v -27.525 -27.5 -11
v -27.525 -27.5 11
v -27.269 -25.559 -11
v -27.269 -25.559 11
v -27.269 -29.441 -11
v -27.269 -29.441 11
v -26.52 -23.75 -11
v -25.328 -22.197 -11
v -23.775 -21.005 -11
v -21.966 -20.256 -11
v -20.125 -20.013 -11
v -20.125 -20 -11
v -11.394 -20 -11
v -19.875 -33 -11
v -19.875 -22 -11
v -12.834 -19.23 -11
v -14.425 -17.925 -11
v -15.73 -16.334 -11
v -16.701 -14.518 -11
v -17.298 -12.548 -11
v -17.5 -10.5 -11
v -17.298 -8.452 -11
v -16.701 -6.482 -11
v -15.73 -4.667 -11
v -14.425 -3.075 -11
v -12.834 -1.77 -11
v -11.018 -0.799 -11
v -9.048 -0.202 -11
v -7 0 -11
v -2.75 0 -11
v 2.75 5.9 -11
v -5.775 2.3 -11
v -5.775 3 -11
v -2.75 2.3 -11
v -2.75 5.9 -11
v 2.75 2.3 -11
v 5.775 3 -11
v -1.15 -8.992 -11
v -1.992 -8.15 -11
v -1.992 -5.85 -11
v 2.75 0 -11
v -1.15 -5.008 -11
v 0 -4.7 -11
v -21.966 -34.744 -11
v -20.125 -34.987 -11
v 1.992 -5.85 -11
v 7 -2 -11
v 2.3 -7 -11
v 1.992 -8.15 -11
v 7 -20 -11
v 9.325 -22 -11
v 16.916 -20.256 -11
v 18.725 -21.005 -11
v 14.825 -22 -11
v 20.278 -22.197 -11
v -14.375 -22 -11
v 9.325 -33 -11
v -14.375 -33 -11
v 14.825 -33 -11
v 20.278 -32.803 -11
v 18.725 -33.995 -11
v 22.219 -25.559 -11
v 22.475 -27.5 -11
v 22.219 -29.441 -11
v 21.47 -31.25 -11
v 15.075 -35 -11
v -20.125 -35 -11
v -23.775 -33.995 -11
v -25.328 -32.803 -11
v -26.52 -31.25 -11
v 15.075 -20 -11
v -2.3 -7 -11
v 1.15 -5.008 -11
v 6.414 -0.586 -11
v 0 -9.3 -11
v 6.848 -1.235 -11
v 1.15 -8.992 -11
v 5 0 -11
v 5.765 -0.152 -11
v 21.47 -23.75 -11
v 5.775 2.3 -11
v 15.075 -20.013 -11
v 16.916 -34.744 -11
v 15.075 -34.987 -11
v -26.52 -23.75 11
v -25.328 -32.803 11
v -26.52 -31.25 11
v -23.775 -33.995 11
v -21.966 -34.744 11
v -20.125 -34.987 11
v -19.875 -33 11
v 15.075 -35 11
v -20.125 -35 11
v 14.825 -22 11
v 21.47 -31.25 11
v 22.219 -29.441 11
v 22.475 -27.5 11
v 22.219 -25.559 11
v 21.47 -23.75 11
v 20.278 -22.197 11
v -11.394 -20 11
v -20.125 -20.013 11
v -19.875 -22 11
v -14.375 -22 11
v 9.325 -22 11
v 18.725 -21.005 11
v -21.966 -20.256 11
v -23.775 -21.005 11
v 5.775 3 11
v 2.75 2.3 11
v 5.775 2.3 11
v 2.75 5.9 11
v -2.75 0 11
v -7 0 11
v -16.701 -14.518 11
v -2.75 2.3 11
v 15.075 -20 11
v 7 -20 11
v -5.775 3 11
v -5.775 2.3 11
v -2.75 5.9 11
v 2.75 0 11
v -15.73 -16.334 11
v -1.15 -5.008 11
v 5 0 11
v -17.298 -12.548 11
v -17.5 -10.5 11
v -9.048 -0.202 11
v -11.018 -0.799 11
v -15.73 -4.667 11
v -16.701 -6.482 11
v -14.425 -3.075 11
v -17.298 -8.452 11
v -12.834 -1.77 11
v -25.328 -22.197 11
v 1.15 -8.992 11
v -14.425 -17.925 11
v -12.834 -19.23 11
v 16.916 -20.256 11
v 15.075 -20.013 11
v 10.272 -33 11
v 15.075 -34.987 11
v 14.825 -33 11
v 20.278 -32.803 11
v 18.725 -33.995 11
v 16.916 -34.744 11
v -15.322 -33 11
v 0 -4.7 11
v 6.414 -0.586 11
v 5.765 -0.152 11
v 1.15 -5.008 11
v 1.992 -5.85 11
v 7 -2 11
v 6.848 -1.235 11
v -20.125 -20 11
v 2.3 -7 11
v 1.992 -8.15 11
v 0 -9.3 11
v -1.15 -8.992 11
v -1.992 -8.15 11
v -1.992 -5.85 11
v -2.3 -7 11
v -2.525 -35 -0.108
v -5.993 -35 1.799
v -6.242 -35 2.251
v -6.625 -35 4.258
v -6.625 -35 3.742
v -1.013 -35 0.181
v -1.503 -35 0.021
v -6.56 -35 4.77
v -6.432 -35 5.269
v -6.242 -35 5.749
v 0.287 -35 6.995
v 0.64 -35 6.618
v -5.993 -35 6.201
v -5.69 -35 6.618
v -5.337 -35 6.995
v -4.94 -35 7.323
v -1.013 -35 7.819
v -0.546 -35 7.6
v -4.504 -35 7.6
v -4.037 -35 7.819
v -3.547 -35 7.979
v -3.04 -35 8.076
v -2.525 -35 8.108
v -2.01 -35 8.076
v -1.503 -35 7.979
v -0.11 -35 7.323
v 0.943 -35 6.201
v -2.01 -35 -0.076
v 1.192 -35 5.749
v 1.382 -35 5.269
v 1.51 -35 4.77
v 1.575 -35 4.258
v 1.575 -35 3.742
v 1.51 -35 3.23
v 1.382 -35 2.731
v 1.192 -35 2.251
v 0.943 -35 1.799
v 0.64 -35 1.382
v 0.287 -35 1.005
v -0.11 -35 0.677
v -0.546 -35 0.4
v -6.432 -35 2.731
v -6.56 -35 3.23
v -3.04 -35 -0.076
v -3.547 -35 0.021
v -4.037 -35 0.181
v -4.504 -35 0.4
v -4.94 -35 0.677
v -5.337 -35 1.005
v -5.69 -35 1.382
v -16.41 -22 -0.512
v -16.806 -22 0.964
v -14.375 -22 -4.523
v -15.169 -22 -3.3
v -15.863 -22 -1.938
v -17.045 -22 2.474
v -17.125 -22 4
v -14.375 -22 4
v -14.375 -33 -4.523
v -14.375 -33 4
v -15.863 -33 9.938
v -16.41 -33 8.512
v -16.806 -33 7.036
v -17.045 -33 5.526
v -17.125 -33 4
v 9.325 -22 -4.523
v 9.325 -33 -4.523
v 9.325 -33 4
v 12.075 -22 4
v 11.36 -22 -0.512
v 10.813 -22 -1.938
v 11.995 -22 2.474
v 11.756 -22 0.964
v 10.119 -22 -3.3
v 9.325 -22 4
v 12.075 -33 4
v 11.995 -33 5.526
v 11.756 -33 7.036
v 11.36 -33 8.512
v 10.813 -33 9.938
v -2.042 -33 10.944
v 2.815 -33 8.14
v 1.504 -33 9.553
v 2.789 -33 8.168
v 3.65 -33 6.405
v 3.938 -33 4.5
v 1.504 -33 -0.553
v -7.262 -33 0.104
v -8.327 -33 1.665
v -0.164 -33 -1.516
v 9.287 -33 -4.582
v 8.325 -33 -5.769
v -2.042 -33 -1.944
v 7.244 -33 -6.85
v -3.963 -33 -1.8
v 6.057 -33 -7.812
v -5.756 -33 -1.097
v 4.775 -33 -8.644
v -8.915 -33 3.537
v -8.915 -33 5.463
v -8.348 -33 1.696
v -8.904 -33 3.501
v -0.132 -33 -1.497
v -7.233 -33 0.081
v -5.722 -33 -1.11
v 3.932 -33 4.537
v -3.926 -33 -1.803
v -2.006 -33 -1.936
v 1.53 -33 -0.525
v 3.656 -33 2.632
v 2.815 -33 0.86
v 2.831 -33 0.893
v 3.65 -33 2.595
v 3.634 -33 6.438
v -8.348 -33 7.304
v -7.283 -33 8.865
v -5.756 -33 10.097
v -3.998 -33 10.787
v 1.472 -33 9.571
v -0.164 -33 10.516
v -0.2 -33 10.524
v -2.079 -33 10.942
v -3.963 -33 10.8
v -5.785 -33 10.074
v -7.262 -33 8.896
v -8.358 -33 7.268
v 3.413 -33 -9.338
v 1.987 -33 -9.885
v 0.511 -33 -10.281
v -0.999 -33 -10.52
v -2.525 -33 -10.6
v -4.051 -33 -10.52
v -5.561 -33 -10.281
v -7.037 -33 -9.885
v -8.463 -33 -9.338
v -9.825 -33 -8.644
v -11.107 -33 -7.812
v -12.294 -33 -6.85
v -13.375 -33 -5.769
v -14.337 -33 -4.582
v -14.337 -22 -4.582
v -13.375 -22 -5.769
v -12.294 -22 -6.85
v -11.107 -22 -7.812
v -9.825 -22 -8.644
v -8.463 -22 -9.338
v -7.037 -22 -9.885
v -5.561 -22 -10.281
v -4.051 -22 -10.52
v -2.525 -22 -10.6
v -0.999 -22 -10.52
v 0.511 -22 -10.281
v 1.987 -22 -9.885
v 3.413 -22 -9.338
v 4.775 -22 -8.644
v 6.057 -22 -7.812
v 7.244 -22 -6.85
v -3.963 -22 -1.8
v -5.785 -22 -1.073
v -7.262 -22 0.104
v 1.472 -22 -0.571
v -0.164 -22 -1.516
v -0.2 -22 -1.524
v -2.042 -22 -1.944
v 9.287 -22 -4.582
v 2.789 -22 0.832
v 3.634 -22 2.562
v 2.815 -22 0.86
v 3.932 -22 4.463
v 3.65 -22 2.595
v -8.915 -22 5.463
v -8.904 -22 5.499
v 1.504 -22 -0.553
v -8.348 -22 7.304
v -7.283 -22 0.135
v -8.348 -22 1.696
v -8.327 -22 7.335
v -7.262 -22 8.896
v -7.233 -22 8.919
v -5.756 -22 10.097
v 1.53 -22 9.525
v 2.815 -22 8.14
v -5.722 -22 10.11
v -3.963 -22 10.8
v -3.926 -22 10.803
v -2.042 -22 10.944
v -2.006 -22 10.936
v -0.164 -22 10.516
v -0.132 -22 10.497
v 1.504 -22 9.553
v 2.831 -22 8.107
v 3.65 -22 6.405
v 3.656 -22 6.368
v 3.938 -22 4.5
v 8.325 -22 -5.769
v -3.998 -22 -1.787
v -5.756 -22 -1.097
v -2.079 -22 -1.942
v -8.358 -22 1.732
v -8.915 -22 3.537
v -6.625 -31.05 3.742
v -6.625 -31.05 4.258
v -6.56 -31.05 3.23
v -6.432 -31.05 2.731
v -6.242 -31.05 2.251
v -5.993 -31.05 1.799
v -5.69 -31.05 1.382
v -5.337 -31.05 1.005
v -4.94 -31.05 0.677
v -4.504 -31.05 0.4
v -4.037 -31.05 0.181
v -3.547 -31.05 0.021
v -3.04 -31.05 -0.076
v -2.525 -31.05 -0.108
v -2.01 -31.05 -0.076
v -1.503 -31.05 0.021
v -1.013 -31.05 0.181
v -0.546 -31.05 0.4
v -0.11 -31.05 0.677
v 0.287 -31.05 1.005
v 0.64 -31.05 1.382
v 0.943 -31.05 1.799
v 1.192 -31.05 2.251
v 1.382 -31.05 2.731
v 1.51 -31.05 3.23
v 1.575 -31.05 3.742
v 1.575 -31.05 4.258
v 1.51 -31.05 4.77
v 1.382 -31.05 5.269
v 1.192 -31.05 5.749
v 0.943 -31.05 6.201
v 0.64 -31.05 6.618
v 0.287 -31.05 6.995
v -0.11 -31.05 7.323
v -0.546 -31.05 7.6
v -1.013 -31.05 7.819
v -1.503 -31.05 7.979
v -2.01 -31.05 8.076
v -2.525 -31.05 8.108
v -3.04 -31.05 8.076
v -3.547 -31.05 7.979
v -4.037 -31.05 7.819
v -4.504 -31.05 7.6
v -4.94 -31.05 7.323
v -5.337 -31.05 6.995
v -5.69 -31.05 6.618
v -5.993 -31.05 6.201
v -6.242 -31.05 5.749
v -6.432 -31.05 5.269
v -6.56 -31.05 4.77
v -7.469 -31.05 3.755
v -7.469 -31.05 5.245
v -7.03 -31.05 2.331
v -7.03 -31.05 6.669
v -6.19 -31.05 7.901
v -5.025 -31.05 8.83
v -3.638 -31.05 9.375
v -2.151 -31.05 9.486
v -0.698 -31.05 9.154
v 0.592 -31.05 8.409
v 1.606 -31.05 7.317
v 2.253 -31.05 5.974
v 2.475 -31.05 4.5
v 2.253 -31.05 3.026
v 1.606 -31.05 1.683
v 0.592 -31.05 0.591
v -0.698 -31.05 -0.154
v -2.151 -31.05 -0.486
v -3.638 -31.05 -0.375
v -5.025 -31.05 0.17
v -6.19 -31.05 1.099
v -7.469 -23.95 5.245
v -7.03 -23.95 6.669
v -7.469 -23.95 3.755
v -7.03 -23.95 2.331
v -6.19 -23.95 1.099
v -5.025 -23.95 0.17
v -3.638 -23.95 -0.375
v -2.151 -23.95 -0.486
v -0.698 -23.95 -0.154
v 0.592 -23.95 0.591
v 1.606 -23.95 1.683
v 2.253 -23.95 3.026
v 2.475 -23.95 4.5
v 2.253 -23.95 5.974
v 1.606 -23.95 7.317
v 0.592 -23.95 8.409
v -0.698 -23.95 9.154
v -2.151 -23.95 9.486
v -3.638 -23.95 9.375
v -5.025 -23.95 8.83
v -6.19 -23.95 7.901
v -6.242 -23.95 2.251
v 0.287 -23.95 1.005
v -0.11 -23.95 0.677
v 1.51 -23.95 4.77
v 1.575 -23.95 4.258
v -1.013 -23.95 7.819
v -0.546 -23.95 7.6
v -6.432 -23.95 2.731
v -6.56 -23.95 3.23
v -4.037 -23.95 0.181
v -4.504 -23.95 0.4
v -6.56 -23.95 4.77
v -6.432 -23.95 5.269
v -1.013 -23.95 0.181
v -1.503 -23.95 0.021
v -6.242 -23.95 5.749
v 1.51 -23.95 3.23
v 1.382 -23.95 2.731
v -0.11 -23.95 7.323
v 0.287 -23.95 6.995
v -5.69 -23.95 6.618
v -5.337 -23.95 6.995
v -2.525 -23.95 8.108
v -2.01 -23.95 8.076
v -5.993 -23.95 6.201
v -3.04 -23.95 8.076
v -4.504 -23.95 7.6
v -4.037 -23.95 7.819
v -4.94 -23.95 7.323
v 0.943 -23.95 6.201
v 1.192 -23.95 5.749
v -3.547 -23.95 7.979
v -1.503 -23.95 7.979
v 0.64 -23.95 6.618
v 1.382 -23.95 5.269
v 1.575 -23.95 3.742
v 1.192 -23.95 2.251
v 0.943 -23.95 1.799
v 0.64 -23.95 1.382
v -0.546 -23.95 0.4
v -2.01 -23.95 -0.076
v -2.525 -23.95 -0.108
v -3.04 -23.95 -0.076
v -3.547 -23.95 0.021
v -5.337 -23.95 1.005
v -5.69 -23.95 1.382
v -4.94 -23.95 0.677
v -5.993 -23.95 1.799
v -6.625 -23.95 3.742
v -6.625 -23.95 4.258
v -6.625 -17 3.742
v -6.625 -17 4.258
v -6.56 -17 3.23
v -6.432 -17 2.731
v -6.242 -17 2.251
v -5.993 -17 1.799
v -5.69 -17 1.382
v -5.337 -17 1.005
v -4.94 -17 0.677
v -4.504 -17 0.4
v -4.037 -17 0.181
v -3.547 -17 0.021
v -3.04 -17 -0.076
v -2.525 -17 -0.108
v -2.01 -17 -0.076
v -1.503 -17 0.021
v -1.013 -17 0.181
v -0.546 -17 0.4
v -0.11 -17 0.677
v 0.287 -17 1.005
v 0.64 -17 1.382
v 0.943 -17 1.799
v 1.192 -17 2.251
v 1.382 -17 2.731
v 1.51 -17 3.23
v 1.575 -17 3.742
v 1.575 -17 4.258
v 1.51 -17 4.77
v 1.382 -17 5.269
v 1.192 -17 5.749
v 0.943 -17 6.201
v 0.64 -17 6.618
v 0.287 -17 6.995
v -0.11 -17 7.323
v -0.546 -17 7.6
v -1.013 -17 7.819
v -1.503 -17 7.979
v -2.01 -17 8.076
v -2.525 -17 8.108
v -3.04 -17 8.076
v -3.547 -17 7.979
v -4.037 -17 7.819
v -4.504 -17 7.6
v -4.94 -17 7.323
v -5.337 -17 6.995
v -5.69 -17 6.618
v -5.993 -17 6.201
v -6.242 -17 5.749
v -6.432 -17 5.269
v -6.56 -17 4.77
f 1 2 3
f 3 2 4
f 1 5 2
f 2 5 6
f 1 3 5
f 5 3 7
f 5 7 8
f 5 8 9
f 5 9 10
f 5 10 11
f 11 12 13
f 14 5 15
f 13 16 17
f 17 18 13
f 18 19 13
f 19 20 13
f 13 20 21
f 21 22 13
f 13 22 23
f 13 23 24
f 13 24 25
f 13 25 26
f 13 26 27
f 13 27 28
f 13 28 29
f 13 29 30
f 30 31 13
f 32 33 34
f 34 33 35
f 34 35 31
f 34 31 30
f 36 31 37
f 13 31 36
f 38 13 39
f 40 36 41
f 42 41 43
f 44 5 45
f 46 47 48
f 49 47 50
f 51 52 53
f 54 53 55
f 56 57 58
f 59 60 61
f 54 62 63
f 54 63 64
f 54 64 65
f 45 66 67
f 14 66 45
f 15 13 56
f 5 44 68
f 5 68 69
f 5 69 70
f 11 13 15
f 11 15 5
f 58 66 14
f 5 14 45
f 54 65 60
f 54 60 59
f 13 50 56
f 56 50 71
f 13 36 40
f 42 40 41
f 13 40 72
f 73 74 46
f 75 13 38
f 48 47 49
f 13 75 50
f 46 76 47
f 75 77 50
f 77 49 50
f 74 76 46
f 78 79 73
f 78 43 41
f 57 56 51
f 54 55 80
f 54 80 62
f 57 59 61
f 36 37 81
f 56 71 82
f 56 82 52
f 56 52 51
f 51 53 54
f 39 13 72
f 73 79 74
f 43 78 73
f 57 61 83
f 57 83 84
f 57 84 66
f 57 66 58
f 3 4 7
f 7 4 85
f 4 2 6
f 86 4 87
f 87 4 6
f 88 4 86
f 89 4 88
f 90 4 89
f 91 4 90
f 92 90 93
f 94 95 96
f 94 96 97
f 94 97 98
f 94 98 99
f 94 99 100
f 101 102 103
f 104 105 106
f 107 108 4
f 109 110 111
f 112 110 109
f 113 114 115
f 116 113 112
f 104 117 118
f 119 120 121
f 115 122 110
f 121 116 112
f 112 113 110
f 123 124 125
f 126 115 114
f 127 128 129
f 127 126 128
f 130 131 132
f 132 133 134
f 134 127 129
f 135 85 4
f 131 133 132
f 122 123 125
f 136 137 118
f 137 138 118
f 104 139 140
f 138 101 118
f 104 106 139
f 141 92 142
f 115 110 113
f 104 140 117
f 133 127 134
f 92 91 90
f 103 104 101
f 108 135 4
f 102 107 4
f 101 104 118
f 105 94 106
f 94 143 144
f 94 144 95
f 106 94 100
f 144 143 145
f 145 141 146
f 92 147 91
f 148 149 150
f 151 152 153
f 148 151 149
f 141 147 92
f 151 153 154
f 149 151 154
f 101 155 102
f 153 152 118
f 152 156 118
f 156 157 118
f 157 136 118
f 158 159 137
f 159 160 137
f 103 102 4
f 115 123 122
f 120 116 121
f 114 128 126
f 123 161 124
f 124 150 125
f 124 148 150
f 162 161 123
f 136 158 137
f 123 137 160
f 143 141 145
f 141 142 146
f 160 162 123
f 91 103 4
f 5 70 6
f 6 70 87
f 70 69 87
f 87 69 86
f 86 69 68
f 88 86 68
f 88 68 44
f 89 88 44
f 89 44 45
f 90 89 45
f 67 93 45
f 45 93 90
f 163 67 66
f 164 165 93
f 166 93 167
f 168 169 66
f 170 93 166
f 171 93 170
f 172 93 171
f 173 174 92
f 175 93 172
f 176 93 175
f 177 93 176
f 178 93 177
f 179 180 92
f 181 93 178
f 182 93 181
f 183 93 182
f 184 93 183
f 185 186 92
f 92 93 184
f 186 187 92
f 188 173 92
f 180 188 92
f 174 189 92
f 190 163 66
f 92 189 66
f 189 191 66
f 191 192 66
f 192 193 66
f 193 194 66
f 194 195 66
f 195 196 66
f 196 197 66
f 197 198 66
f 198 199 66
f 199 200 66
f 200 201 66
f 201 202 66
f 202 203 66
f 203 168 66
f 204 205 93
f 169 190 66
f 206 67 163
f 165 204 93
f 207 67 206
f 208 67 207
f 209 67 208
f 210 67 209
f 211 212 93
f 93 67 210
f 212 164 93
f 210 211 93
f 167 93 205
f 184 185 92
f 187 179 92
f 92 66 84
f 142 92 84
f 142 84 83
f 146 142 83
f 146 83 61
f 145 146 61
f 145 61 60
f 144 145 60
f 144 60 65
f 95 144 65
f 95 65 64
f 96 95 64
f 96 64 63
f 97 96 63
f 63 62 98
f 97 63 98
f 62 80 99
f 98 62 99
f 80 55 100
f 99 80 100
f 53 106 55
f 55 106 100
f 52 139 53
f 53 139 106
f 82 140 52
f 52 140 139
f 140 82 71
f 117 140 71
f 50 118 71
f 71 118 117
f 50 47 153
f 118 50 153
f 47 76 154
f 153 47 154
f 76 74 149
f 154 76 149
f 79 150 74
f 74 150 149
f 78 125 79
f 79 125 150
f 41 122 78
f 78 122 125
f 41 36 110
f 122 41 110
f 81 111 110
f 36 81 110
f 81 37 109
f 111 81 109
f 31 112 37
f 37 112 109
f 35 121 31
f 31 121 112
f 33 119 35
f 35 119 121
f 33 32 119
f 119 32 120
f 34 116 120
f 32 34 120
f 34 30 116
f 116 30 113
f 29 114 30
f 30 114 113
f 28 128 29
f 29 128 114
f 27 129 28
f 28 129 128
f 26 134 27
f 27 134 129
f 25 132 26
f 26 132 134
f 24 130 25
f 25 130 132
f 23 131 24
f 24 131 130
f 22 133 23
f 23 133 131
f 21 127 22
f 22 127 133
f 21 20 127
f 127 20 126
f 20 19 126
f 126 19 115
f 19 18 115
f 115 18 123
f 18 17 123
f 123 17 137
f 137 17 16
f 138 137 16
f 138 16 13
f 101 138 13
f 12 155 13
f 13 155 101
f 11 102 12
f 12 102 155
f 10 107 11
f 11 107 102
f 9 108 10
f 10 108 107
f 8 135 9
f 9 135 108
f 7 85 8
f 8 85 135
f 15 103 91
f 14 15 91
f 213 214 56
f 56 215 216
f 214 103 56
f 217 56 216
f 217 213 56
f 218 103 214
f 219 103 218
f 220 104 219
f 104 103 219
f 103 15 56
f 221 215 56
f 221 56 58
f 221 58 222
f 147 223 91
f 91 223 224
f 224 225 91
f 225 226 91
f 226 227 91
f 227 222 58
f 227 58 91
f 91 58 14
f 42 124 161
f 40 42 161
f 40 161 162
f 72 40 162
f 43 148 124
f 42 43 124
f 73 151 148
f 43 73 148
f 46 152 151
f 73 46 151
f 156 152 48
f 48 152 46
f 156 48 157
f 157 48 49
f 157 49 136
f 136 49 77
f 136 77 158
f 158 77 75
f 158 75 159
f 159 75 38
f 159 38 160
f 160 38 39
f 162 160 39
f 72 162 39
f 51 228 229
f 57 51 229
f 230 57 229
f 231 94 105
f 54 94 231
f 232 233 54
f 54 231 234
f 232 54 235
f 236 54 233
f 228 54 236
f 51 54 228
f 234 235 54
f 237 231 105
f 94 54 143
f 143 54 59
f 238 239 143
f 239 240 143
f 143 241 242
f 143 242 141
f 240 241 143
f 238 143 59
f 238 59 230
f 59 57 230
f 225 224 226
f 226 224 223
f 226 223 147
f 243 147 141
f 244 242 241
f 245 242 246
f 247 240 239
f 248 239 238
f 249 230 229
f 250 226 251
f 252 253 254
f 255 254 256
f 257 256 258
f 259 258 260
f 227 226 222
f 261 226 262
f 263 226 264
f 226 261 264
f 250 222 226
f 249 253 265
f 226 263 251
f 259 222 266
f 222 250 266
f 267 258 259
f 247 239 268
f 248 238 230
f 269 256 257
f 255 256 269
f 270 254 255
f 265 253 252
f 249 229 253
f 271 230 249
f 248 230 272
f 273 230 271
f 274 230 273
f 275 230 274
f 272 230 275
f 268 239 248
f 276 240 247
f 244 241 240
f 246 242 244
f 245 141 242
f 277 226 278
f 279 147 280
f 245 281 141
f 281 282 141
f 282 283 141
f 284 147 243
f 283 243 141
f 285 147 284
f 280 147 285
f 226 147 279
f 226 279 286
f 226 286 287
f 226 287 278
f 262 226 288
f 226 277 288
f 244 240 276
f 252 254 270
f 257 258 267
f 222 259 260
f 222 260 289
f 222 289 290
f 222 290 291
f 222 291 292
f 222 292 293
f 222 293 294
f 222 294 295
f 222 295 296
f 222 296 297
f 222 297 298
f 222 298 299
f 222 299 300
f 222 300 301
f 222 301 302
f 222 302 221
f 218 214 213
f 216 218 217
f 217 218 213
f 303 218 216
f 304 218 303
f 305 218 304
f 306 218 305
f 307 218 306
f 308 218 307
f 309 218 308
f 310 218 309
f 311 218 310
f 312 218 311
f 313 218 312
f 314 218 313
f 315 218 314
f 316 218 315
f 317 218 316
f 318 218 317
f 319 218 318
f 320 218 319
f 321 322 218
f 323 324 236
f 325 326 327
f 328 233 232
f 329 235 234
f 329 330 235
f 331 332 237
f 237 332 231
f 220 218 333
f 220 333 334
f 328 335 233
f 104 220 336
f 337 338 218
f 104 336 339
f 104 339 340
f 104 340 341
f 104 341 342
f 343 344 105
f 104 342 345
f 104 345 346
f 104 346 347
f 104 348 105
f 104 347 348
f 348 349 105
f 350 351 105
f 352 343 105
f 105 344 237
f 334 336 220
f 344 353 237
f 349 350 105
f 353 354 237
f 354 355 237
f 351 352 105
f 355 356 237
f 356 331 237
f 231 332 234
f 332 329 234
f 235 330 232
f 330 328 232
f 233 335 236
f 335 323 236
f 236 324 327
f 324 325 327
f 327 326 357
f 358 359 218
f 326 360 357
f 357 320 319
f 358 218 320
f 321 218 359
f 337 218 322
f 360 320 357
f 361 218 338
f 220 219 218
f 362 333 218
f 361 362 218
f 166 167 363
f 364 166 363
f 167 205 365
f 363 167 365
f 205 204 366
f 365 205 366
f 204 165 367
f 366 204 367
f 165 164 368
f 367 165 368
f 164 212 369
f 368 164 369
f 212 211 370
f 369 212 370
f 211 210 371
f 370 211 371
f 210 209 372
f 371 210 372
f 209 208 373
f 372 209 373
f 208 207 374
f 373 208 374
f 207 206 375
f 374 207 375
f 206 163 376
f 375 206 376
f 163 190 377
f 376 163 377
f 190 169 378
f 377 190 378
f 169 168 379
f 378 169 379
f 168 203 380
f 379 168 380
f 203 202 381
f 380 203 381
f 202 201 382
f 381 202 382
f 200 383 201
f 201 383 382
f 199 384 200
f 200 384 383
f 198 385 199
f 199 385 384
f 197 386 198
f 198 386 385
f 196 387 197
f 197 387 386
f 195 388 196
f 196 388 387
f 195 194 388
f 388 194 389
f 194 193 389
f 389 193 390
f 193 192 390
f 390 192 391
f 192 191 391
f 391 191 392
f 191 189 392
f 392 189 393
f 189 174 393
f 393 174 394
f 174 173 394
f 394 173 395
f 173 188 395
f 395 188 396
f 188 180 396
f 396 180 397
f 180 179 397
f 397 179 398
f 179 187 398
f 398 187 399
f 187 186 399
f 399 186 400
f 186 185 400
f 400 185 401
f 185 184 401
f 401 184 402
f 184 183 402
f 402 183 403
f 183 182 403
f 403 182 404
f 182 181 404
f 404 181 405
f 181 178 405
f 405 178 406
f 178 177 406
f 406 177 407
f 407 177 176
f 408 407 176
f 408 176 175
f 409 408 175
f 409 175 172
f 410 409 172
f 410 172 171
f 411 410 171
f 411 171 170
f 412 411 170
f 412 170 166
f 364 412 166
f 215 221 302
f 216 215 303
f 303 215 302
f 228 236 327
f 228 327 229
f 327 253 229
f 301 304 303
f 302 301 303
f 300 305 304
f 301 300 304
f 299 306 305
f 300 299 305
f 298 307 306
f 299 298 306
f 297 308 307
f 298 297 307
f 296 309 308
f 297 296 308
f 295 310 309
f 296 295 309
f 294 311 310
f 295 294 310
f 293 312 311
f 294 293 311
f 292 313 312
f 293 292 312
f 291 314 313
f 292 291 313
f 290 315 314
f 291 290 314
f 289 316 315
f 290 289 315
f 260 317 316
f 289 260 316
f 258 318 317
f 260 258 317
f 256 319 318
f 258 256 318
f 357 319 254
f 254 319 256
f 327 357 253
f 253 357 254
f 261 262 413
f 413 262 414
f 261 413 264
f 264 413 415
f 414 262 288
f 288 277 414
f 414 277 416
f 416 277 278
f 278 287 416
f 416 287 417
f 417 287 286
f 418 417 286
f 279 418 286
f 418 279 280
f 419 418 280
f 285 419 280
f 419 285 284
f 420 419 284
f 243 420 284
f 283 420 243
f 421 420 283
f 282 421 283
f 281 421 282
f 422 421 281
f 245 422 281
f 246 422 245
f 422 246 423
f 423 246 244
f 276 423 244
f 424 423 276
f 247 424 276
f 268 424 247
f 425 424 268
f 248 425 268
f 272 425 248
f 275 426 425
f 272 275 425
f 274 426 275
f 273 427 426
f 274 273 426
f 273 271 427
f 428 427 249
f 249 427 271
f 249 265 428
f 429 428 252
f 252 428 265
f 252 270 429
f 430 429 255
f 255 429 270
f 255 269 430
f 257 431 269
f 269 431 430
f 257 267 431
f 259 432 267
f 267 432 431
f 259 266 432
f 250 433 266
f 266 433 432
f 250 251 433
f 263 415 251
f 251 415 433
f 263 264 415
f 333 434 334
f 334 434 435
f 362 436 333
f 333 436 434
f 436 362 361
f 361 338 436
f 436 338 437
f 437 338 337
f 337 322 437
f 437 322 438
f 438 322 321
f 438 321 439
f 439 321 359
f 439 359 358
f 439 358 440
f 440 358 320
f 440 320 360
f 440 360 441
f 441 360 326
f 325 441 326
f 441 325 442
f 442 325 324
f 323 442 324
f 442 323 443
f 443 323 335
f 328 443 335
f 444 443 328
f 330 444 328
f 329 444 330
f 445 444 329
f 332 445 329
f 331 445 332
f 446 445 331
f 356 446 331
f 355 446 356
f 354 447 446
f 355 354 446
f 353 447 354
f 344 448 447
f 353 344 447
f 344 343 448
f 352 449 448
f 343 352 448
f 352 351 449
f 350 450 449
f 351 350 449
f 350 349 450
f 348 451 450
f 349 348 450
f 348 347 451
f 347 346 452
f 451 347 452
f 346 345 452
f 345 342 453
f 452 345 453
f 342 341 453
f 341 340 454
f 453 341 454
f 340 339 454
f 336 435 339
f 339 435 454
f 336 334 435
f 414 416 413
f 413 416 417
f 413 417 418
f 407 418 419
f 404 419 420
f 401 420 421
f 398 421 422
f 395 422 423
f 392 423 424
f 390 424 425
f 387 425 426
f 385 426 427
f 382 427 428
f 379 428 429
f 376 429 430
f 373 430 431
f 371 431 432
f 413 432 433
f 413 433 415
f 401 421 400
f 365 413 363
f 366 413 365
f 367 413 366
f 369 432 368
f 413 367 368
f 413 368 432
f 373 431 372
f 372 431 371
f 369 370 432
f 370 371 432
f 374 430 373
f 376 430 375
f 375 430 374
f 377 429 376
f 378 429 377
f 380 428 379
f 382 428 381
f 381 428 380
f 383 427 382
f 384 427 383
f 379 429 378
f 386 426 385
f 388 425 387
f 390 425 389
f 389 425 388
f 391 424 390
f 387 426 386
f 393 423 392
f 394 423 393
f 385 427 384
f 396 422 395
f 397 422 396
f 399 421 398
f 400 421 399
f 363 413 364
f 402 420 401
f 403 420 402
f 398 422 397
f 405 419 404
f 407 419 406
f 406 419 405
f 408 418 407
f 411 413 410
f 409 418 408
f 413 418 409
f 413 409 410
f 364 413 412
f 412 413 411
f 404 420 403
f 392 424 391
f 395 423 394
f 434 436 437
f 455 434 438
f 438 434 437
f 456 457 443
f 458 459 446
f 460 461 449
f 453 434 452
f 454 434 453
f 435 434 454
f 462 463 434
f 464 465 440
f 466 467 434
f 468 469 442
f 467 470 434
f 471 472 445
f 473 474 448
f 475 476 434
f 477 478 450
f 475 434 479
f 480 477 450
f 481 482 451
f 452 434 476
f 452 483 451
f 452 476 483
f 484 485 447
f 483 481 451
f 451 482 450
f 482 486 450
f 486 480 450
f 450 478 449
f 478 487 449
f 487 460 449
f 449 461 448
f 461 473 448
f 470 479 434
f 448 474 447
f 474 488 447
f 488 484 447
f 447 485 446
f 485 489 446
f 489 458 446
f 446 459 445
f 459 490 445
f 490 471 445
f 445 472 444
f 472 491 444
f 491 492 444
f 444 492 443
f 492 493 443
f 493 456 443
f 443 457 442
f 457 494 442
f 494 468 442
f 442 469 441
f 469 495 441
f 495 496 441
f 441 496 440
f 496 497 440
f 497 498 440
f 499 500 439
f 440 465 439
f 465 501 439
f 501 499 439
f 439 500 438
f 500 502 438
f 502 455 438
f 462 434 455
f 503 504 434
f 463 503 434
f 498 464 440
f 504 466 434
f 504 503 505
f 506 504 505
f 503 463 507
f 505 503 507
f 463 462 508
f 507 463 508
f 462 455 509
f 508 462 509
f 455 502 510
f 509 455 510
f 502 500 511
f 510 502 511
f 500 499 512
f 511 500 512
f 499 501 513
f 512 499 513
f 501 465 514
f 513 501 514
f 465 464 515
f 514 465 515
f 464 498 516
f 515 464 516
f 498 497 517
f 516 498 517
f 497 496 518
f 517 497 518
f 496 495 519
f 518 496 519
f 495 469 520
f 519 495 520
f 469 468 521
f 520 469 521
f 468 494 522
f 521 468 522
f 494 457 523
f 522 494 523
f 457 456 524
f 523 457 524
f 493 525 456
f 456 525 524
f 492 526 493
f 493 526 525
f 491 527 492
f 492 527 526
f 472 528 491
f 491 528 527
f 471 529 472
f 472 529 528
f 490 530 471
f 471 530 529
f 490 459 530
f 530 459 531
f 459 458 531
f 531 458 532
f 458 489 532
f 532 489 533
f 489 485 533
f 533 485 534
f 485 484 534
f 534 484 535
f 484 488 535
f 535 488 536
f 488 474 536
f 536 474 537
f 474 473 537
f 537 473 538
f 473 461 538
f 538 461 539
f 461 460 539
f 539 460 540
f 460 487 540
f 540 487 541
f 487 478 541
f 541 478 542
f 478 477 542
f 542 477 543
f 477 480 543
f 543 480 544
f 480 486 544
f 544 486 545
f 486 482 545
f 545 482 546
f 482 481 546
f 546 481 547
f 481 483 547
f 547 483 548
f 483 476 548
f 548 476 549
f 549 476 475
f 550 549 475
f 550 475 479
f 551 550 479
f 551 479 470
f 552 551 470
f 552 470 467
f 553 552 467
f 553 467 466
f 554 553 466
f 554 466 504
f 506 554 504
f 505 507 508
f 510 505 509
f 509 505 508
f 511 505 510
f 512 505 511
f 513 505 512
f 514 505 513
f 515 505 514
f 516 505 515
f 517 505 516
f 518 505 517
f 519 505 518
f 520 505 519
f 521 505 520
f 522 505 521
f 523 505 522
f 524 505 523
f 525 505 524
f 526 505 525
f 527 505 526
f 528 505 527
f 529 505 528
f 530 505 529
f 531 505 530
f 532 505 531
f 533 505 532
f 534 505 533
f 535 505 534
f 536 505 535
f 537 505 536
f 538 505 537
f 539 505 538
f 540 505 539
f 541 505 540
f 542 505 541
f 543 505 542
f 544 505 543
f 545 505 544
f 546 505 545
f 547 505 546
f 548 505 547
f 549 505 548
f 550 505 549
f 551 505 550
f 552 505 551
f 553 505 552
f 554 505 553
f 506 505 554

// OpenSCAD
// file: misumi-parts-library.scad
module hfs2040(l) {
	// hfs5_2040
	color("silver") {
		rotate([-90,0,0]) translate([0,0,l]) scale([1,1,l/500]) import("misumi/hfs5_2040_500.stl");
	}
}

module hfs60() {
	translate([0,0,100]) import("misumi/hfs60a5_20_100.stl");
}

module hblss5() {
	import("misumi/hblss5.stl");
}
module hblfsnf5() {
	import("misumi/hblfsnf5.stl");
}
module hblfsn5() {
	import("misumi/hblfsn5.stl");
}
module hblsd5() {
	color("blue") import("misumi/hblsd5.stl");
}

module hblfsd5() {
	color("blue") import("misumi/hblfsd5.stl");
}

module hblts5() {
	color("blue") import("misumi/hblts5.stl");
}

module hblfssw5() {
	color("blue") import("misumi/hblfssw5.stl");
}

module flatbracket2x2() {
	// HPTSd5
	difference() {
		color("blue") cube([36, 36, 2.3], center=true);
		#translate([10, 10, -2]) cylinder(r= 5.5/2, h= 4);
		#translate([-10, 10, -2]) cylinder(r= 5.5/2, h= 4);
		#translate([10, -10, -2]) cylinder(r= 5.5/2, h= 4);
		#translate([-10, -10, -2]) cylinder(r= 5.5/2, h= 4);
	}
}

module tbracket() {
	// HPTTD5
	translate([-110/2, 0,0]) difference() {
		 union() {
			color("blue"){ 
				cube([110, 38, 2.3]);
				translate([110/2-38/2,-38,0]) cube([38, 80-38, 2.3]);
			}
		}
		#translate([9, 9, 0]) cylinder(r= 5.5/2, h= 4);
		#translate([9, 9+20, 0]) cylinder(r= 5.5/2, h= 4);
		#translate([110-9, 9, 0]) cylinder(r= 5.5/2, h= 4);
		#translate([110-9, 9+20, 0]) cylinder(r= 5.5/2, h= 4);
		translate([110/2-38/2,-38,0]) {
			#translate([9, 9, 0]) cylinder(r= 5.5/2, h= 4);
			#translate([9, 9+20, 0]) cylinder(r= 5.5/2, h= 4);
			#translate([38-9, 9, 0]) cylinder(r= 5.5/2, h= 4);
			#translate([38-9, 9+20, 0]) cylinder(r= 5.5/2, h= 4);
		}
	}
}

module tbracket1() {
	// HPTTS5
	//thick= 2.3; // real
	thick= 4; // printable
	translate([-100/2, 0,0]) difference() {
		 union() {
			color("blue"){ 
				cube([100, 18, thick]);
				translate([100/2-18/2,18,0]) cube([18, 90-18, thick]);
			}
		}
		#translate([10, 9, -2]) cylinder(r= 5.5/2, h= thick+4);
		#translate([100-10, 9, -2]) cylinder(r= 5.5/2, h= thick+4);
		#translate([50, 9, -2]) cylinder(r= 5.5/2, h= thick+4);
		translate([100/2-18/2,18,0]) {
			#translate([9, 90-18-10, -2]) cylinder(r= 5.5/2, h= thick+4);
			#translate([9, 90-18-10-30, -2]) cylinder(r= 5.5/2, h= thick+4);
		}
	}
}
// file: myLibs.scad
pi= 3.14159265359;

module hole(diam, height, clearance= 0.1)
{
        fn= round(diam * pi / 0.5);
        cylinder(h= height, r=diam / 2 / cos(180 / fn) + clearance, $fn=fn);
}

module nutTrap(ffd, faces=6, height=1)
{
	cylinder(h= height, r=ffd / cos(180 / faces) / 2 + 0.05, $fn=faces);
}

// A slot which has rounded ends, but total length is l
module slot(d= 4, l= 8, ht= 1, clearance=0.1) {
	fn= round(d * pi / 0.5);
	rd= d / 2 / cos(180 / fn) + clearance;
	d1= rd*2;
	union() {
		translate([0,0,ht/2]) cube([l-d1, d1, ht], center=true);
		translate([-(l-d1)/2, 0, ht/2]) cylinder(h=ht, r=rd, $fn=fn, center=true);
		translate([(l-d1)/2, 0, ht/2]) cylinder(h=ht, r=rd, $fn=fn, center=true);
	}
}

module nslot(d=4, l= 8, ht=1, clearance=0.1) {
	x= l-(d+clearance);
	hull() {
		translate([x/2, 0, 0])  hole(d, ht, clearance);
		translate([-x/2,0,0]) hole(d,ht, clearance);
	}
}

module rounded_base(w, l, r, h) {
	v1= [w/2-r, l/2-r, 0];
	v2= [-w/2+r, -l/2+r, 0];
	v3= [-w/2+r, l/2-r, 0];
	v4= [w/2-r, -l/2+r, 0];
	hull() {
		translate(v1) cylinder(r= r, h=h);
		translate(v2) cylinder(r= r, h=h);
		translate(v3) cylinder(r= r, h=h);
		translate(v4) cylinder(r= r, h=h);
	}
}
// file: crownedpulley.scad
// Crowned Pulley
// John Rood, 2012-11-18
// inspired by http://www.thingiverse.com/thing:14117 by DaleDunn

$fn = 100;

// 608
crownRadius = 13.6;
pulleyHeight = 9;
bearingSize = 22;
bearingClearing = 0.1; // 22.6mm inside diameter
innerHole = 9.15;

// 605
// pulleyHeight = 5+2;
// bearingSize = 14;
// bearingClearing = 0.1;
// innerHole = bearingSize/2-1.5;
// crownRadius = bearingSize/2+2;

function pulley_width() = pulleyHeight;
function pulley_diameter() = crownRadius*2;

echo(str("pulley_diameter=", crownRadius*2));
module crowned_pulley() {
	difference() {
	    intersection() {
	        cylinder(r = crownRadius, h = pulleyHeight);
	        translate([0, 0, pulleyHeight / 2]) scale([1, 1, .7]) sphere(r=crownRadius);
	    }
	    translate([0, 0, 1])
	        cylinder(r = (bearingSize + bearingClearing) / 2, h = pulleyHeight);
	    translate([0, 0, -1])
	        cylinder(r = innerHole, h = pulleyHeight + 2);
	}
}

crowned_pulley();

// intersection() {
// 	#cylinder(r = crownRadius, h = pulleyHeight);
// 	#translate([0, 0, pulleyHeight / 2]) scale([1, 1, .7])  sphere(r=crownRadius);
// }
// file: 2020-insert.scad
use <misumi-parts-library.scad>

slotneckw= 6-0.5;
slotthick= 2+0.3;
slotdepth= 3.2+0.6-0.2;
slotwidth= 9.95+1.6;
shoulder=0.7;
edge= (slotwidth-slotneckw)/2;
diagl=3.6;

p1= [0,0];
p2= [slotwidth,0];
p3= [slotwidth,-shoulder];
p4= [slotwidth-edge,-slotdepth];
p5= [edge,-slotdepth];
p6= [0,-shoulder];
p7= [0,0];

module slider_body(width, height, thick) {
	union() {
		translate([-width/2,slotthick,0]) cube([width,thick,height]);
		translate([-slotneckw/2,0,0]) cube([slotneckw, slotthick, height]);
		translate([-slotwidth/2,0,0]) linear_extrude(height=height)
			polygon(points=[ p1,p2,p3,p4,p5,p6,p7 ]);
	}
}

module slider2020(w= 20, h= 20, t=2) {
	translate([0,-slotthick,0]) slider_body(w, h, t);
}

slider2020(w=10, h=10, t=2);
% translate([10, -10.1, 0])  rotate([90, 0, 90])   hfs2040(50);
// main file
use <2020-insert.scad>
use <crownedpulley.scad>
use <myLibs.scad>


/* TODO
 * put cones on each side of bearing
 * allow tilting of bearing shaft to center belt
 *   a. wedge
 *   b. nut underneath
 *   c. cone shft push in for tild one way pull out for. tilt otherway
 */

gt2_inner_dia= 12.25;
offset_x = -20; // distance from makerslide
offset_y = 10-pulley_diameter()/2+gt2_inner_dia/2; // left/right offse
rotate_z = -90;
clearance= 2;
offset_z= 4;
block_width= abs(offset_x)+1;
block_length= 14;

belt_thick= 2; // 1.45
belt_width= 6;
belt_clearance= 2;
thick= 3*2;
bearingID= 8;

function tensioner_height()= 22;

//block();
//tensioner_body();
//support();

tensioner_608();

// generate a negative fillet for an edge
module fillet(pos= [0,0,0], radius=3, height=100, fn=16, angle= 0) {
   translate(pos) rotate([0,0,angle]) translate([-radius, -radius, -height/2-0.01])
        difference() {
            cube([radius*2, radius*2, height+0.02]);
            cylinder(r=radius, h=height+0.02, $fn=fn);
        }
}

module tensioner_support() {
	difference() {
		translate([0, 3.5, offset_z]) rotate([90, 0, 0]) cylinder(r=11, h=7, center=false);
		#translate([0, 5, offset_z]) rotate([90, 0, 0]) cylinder(r=8/2, h=10, center=false);
	}
	translate([0, pulley_width()/2, offset_z]) rotate([90, 0, 0]) crowned_pulley();
}

module block() {
		rotate([0, 0, rotate_z]) translate([offset_x-(pulley_width()+thick)/2, offset_y, 0]) {
			difference() {
				union() {
					translate([block_width/2, 0, 0]) cube([block_width, block_length, tensioner_height()], center=true);
					translate([block_width/2, -block_length/2, 0]) cylinder(r=block_width/2, h=tensioner_height(), center=true, $fn=32);
					// t slot
					translate([0,0,-tensioner_height()/2]) rotate([0,0,-90]) slider2020(h=tensioner_height(), w=14, t=2);

				}
				fillet(pos=[0,block_length/2,0], radius=2, angle=90);
				// 1/4" hole for tensioner
				#translate([7,0,10]) cylinder(r=(4)/2+0.3, h=50, center=true, $fn=12);
		}
	}
}

module end() {
	intersection() {
		cylinder(r=(pulley_width()+thick)/2, h=tensioner_height(), center=true);
		translate([0, -(pulley_width()+thick)/2, 0]) cube(size=[pulley_width()+thick, pulley_width()+thick, tensioner_height()], center=true);
	}
}

module tensioner_body() {
	difference() {
		union() {
			cube([pulley_width()+thick, pulley_diameter()+belt_thick+thick, tensioner_height()], center=true);
			translate([0, -(pulley_diameter()+belt_thick+thick)/2+0.1, 0]) end();
			translate([0, (pulley_diameter()+belt_thick+thick)/2-0.1, 0]) rotate([0, 0, 180])  end();
		}

		translate([0, 0, offset_z]) {
			// bearing
			rotate([0, 90, 0]) cylinder(r=(pulley_diameter()+clearance)/2, h=pulley_width()+clearance, center=true, $fn=60);
			// shaft
			//#translate([-14/2,0,0]) rotate([0, 90, 0]) hole(8, 14);
		}
		// belts
		translate([0, pulley_diameter()/2+belt_thick-1, 0]) cube(size=[pulley_width()+clearance, belt_thick+belt_clearance+1.5, 40], center=true);
		translate([0, -pulley_diameter()/2-belt_thick+1, 0]) cube(size=[pulley_width()+clearance, belt_thick+belt_clearance+1.5, 40], center=true);
	}
}

module tensioner_608() {
	translate([-offset_y,offset_x-(pulley_width()+thick)/2,0]) difference() {
		union() {
			block();
			translate([0, 0, 0]) rotate([0, 0, 90])  tensioner_body();
			translate([0,(pulley_width()+clearance)/2+0.05,offset_z+0.5]) horn(true);
			translate([0,-(pulley_width()+clearance)/2-0.05,offset_z+0.5]) horn(false);
		}
		// bearing shaft
		//translate([0,block_width/2,offset_z+0.5]) rotate([90, 90, 0]) slot(8, 9, 18);
		#translate([0,block_width/2,offset_z]) rotate([90, 90, 0]) hole(8, 19);
		//translate([0, -12, 0])  cube([50, 20, 50], center=true); // cutaway to see clearance
	}

	%translate([-offset_y,offset_x-(pulley_width()+thick)/2,0]) tensioner_support();

	// belts
	%translate([-offset_y-pulley_diameter()/2-belt_thick, offset_x-(pulley_width()+thick)/2-belt_width/2, -25]) color("gray") cube([belt_thick, belt_width, 50]);
}

module horn(front=true) {
	rotate([front?90:-90, 0, 0])  cylinder(r1= bearingID/2+2.5, r2=bearingID/2+1, h=2);
}
